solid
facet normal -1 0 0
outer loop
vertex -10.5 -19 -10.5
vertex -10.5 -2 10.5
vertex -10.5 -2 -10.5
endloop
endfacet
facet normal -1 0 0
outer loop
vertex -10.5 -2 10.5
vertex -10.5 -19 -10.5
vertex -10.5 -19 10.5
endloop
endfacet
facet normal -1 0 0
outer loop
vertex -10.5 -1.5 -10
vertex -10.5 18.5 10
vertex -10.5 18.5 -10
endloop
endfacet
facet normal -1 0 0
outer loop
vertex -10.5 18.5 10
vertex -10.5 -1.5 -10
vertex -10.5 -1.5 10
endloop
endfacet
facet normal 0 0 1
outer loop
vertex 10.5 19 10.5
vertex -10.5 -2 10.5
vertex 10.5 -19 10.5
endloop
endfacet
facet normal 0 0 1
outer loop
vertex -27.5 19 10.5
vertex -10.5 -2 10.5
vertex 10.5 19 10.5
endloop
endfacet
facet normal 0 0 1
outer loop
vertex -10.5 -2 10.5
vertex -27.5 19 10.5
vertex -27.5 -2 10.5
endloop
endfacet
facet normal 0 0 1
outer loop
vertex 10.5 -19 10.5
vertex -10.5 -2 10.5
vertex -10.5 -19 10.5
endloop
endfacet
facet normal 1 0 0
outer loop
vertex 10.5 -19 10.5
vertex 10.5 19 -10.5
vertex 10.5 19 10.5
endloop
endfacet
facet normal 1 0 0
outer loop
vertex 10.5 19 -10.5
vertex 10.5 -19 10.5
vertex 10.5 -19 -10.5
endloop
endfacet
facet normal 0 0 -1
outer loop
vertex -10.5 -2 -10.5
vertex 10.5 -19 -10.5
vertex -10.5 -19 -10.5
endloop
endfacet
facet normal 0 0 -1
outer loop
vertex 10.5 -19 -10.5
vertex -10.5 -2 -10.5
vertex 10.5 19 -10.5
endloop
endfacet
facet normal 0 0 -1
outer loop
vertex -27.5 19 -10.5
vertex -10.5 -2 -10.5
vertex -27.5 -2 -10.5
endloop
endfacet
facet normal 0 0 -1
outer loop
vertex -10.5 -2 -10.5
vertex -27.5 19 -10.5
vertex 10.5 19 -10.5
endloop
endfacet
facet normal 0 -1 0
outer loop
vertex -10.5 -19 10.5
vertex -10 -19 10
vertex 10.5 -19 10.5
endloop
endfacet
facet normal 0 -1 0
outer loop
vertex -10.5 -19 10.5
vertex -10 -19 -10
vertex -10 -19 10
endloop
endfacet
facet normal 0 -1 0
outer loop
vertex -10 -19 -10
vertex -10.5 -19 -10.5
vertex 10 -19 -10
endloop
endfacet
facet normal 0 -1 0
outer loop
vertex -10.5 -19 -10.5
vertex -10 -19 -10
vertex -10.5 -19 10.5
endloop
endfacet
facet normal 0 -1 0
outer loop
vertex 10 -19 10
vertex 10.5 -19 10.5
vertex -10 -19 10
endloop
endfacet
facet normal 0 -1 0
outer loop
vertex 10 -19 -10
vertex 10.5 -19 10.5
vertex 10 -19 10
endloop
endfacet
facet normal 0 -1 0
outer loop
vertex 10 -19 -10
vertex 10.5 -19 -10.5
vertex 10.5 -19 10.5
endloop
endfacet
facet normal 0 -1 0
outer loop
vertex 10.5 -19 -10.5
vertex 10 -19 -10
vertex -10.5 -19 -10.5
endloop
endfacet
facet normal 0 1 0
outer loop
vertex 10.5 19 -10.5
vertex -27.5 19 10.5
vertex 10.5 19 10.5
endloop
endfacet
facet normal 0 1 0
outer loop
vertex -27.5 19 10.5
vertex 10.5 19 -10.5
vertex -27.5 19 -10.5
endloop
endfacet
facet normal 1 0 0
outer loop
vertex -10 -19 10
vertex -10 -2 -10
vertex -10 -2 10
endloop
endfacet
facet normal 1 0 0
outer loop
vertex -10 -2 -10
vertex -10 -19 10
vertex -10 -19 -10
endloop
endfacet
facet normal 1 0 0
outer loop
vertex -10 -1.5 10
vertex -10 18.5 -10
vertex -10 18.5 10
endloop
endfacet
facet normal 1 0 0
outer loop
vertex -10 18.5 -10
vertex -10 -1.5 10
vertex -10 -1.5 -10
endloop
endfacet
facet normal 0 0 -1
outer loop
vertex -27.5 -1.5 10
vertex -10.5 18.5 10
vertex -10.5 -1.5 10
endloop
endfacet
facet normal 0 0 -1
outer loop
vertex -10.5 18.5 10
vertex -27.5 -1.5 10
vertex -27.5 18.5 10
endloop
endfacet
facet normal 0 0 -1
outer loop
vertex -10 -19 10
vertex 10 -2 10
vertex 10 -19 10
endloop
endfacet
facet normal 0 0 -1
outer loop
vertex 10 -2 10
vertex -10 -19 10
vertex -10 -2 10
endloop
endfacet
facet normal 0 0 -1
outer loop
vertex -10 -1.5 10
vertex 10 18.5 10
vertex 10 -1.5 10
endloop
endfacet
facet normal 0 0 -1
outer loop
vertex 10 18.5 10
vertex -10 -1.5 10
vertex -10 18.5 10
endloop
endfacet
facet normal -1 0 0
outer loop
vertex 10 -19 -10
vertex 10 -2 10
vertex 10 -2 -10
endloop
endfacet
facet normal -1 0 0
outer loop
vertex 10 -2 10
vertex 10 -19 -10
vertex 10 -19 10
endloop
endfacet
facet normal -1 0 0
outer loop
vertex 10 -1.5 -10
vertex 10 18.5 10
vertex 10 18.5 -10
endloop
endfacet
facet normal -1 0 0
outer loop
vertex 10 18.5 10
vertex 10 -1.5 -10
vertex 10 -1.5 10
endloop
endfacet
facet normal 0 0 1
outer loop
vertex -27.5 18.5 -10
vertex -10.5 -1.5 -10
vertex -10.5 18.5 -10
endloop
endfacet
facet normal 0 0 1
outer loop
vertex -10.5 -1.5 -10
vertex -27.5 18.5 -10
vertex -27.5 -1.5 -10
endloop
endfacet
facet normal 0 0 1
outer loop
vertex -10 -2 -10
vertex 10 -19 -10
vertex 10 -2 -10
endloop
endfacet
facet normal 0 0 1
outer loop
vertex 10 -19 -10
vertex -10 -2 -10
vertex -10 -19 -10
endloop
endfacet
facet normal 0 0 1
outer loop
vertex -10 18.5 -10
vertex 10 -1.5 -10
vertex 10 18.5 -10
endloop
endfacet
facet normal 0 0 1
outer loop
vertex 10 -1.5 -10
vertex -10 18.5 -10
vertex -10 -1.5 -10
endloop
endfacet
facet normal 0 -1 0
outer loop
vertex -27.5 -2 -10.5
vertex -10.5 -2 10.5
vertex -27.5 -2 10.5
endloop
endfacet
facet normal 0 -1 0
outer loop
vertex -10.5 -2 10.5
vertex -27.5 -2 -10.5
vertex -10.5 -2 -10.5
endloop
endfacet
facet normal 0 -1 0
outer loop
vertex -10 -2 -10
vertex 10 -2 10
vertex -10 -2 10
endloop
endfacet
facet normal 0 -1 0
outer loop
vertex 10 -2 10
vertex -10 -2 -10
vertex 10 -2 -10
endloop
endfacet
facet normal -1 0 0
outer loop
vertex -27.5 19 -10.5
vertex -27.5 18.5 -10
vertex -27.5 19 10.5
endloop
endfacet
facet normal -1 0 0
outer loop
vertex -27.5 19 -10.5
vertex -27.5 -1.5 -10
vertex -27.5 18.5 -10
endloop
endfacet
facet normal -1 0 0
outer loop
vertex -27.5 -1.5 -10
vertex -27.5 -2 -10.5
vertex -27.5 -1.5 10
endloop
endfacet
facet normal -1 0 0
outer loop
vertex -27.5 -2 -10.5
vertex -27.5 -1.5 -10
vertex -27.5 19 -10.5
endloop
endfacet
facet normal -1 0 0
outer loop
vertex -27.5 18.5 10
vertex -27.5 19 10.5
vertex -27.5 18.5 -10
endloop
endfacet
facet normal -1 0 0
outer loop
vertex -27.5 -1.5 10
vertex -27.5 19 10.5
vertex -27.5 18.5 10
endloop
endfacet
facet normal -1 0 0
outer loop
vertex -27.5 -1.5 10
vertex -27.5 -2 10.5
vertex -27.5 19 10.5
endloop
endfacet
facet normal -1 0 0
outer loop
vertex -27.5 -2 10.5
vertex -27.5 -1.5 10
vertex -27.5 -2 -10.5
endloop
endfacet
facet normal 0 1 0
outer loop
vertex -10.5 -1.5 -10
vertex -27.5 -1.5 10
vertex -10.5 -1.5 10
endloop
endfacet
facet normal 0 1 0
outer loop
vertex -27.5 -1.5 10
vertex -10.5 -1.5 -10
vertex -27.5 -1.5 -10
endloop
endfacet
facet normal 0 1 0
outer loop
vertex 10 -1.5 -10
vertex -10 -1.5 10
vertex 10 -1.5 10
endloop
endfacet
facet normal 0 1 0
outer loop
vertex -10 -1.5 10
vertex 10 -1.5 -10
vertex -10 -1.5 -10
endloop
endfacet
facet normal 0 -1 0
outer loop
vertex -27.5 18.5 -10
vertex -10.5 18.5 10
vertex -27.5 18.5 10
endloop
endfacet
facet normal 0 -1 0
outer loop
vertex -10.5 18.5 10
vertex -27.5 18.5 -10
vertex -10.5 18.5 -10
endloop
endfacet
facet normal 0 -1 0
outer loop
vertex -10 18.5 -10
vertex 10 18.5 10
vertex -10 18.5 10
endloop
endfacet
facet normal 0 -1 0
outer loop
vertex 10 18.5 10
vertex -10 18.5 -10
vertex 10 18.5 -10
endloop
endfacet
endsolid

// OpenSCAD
// Rahmenecke


Ecke = true;
Kante1 = true;
Kante2 = true;

xIn = 20;
yIn = 40;
zIn = 20;

xOut = xIn + 1;
yOut = yIn - 2;
zOut = zIn + 1;


module Ecke() {
    if (Kante1)Kante1();
    if (Kante2)Kante2();
}


module Kante1() {
    
    difference() {
        cube([xOut,yOut,zOut],center=true);
        cube([xIn,yIn,zIn],center=true);
    }
}

module Kante2() {
    
    rotate([0,0,90]) 
    translate([xOut/2-2,yOut/4-1,0])
    Kante1();
}

if (Ecke) Ecke();
    
